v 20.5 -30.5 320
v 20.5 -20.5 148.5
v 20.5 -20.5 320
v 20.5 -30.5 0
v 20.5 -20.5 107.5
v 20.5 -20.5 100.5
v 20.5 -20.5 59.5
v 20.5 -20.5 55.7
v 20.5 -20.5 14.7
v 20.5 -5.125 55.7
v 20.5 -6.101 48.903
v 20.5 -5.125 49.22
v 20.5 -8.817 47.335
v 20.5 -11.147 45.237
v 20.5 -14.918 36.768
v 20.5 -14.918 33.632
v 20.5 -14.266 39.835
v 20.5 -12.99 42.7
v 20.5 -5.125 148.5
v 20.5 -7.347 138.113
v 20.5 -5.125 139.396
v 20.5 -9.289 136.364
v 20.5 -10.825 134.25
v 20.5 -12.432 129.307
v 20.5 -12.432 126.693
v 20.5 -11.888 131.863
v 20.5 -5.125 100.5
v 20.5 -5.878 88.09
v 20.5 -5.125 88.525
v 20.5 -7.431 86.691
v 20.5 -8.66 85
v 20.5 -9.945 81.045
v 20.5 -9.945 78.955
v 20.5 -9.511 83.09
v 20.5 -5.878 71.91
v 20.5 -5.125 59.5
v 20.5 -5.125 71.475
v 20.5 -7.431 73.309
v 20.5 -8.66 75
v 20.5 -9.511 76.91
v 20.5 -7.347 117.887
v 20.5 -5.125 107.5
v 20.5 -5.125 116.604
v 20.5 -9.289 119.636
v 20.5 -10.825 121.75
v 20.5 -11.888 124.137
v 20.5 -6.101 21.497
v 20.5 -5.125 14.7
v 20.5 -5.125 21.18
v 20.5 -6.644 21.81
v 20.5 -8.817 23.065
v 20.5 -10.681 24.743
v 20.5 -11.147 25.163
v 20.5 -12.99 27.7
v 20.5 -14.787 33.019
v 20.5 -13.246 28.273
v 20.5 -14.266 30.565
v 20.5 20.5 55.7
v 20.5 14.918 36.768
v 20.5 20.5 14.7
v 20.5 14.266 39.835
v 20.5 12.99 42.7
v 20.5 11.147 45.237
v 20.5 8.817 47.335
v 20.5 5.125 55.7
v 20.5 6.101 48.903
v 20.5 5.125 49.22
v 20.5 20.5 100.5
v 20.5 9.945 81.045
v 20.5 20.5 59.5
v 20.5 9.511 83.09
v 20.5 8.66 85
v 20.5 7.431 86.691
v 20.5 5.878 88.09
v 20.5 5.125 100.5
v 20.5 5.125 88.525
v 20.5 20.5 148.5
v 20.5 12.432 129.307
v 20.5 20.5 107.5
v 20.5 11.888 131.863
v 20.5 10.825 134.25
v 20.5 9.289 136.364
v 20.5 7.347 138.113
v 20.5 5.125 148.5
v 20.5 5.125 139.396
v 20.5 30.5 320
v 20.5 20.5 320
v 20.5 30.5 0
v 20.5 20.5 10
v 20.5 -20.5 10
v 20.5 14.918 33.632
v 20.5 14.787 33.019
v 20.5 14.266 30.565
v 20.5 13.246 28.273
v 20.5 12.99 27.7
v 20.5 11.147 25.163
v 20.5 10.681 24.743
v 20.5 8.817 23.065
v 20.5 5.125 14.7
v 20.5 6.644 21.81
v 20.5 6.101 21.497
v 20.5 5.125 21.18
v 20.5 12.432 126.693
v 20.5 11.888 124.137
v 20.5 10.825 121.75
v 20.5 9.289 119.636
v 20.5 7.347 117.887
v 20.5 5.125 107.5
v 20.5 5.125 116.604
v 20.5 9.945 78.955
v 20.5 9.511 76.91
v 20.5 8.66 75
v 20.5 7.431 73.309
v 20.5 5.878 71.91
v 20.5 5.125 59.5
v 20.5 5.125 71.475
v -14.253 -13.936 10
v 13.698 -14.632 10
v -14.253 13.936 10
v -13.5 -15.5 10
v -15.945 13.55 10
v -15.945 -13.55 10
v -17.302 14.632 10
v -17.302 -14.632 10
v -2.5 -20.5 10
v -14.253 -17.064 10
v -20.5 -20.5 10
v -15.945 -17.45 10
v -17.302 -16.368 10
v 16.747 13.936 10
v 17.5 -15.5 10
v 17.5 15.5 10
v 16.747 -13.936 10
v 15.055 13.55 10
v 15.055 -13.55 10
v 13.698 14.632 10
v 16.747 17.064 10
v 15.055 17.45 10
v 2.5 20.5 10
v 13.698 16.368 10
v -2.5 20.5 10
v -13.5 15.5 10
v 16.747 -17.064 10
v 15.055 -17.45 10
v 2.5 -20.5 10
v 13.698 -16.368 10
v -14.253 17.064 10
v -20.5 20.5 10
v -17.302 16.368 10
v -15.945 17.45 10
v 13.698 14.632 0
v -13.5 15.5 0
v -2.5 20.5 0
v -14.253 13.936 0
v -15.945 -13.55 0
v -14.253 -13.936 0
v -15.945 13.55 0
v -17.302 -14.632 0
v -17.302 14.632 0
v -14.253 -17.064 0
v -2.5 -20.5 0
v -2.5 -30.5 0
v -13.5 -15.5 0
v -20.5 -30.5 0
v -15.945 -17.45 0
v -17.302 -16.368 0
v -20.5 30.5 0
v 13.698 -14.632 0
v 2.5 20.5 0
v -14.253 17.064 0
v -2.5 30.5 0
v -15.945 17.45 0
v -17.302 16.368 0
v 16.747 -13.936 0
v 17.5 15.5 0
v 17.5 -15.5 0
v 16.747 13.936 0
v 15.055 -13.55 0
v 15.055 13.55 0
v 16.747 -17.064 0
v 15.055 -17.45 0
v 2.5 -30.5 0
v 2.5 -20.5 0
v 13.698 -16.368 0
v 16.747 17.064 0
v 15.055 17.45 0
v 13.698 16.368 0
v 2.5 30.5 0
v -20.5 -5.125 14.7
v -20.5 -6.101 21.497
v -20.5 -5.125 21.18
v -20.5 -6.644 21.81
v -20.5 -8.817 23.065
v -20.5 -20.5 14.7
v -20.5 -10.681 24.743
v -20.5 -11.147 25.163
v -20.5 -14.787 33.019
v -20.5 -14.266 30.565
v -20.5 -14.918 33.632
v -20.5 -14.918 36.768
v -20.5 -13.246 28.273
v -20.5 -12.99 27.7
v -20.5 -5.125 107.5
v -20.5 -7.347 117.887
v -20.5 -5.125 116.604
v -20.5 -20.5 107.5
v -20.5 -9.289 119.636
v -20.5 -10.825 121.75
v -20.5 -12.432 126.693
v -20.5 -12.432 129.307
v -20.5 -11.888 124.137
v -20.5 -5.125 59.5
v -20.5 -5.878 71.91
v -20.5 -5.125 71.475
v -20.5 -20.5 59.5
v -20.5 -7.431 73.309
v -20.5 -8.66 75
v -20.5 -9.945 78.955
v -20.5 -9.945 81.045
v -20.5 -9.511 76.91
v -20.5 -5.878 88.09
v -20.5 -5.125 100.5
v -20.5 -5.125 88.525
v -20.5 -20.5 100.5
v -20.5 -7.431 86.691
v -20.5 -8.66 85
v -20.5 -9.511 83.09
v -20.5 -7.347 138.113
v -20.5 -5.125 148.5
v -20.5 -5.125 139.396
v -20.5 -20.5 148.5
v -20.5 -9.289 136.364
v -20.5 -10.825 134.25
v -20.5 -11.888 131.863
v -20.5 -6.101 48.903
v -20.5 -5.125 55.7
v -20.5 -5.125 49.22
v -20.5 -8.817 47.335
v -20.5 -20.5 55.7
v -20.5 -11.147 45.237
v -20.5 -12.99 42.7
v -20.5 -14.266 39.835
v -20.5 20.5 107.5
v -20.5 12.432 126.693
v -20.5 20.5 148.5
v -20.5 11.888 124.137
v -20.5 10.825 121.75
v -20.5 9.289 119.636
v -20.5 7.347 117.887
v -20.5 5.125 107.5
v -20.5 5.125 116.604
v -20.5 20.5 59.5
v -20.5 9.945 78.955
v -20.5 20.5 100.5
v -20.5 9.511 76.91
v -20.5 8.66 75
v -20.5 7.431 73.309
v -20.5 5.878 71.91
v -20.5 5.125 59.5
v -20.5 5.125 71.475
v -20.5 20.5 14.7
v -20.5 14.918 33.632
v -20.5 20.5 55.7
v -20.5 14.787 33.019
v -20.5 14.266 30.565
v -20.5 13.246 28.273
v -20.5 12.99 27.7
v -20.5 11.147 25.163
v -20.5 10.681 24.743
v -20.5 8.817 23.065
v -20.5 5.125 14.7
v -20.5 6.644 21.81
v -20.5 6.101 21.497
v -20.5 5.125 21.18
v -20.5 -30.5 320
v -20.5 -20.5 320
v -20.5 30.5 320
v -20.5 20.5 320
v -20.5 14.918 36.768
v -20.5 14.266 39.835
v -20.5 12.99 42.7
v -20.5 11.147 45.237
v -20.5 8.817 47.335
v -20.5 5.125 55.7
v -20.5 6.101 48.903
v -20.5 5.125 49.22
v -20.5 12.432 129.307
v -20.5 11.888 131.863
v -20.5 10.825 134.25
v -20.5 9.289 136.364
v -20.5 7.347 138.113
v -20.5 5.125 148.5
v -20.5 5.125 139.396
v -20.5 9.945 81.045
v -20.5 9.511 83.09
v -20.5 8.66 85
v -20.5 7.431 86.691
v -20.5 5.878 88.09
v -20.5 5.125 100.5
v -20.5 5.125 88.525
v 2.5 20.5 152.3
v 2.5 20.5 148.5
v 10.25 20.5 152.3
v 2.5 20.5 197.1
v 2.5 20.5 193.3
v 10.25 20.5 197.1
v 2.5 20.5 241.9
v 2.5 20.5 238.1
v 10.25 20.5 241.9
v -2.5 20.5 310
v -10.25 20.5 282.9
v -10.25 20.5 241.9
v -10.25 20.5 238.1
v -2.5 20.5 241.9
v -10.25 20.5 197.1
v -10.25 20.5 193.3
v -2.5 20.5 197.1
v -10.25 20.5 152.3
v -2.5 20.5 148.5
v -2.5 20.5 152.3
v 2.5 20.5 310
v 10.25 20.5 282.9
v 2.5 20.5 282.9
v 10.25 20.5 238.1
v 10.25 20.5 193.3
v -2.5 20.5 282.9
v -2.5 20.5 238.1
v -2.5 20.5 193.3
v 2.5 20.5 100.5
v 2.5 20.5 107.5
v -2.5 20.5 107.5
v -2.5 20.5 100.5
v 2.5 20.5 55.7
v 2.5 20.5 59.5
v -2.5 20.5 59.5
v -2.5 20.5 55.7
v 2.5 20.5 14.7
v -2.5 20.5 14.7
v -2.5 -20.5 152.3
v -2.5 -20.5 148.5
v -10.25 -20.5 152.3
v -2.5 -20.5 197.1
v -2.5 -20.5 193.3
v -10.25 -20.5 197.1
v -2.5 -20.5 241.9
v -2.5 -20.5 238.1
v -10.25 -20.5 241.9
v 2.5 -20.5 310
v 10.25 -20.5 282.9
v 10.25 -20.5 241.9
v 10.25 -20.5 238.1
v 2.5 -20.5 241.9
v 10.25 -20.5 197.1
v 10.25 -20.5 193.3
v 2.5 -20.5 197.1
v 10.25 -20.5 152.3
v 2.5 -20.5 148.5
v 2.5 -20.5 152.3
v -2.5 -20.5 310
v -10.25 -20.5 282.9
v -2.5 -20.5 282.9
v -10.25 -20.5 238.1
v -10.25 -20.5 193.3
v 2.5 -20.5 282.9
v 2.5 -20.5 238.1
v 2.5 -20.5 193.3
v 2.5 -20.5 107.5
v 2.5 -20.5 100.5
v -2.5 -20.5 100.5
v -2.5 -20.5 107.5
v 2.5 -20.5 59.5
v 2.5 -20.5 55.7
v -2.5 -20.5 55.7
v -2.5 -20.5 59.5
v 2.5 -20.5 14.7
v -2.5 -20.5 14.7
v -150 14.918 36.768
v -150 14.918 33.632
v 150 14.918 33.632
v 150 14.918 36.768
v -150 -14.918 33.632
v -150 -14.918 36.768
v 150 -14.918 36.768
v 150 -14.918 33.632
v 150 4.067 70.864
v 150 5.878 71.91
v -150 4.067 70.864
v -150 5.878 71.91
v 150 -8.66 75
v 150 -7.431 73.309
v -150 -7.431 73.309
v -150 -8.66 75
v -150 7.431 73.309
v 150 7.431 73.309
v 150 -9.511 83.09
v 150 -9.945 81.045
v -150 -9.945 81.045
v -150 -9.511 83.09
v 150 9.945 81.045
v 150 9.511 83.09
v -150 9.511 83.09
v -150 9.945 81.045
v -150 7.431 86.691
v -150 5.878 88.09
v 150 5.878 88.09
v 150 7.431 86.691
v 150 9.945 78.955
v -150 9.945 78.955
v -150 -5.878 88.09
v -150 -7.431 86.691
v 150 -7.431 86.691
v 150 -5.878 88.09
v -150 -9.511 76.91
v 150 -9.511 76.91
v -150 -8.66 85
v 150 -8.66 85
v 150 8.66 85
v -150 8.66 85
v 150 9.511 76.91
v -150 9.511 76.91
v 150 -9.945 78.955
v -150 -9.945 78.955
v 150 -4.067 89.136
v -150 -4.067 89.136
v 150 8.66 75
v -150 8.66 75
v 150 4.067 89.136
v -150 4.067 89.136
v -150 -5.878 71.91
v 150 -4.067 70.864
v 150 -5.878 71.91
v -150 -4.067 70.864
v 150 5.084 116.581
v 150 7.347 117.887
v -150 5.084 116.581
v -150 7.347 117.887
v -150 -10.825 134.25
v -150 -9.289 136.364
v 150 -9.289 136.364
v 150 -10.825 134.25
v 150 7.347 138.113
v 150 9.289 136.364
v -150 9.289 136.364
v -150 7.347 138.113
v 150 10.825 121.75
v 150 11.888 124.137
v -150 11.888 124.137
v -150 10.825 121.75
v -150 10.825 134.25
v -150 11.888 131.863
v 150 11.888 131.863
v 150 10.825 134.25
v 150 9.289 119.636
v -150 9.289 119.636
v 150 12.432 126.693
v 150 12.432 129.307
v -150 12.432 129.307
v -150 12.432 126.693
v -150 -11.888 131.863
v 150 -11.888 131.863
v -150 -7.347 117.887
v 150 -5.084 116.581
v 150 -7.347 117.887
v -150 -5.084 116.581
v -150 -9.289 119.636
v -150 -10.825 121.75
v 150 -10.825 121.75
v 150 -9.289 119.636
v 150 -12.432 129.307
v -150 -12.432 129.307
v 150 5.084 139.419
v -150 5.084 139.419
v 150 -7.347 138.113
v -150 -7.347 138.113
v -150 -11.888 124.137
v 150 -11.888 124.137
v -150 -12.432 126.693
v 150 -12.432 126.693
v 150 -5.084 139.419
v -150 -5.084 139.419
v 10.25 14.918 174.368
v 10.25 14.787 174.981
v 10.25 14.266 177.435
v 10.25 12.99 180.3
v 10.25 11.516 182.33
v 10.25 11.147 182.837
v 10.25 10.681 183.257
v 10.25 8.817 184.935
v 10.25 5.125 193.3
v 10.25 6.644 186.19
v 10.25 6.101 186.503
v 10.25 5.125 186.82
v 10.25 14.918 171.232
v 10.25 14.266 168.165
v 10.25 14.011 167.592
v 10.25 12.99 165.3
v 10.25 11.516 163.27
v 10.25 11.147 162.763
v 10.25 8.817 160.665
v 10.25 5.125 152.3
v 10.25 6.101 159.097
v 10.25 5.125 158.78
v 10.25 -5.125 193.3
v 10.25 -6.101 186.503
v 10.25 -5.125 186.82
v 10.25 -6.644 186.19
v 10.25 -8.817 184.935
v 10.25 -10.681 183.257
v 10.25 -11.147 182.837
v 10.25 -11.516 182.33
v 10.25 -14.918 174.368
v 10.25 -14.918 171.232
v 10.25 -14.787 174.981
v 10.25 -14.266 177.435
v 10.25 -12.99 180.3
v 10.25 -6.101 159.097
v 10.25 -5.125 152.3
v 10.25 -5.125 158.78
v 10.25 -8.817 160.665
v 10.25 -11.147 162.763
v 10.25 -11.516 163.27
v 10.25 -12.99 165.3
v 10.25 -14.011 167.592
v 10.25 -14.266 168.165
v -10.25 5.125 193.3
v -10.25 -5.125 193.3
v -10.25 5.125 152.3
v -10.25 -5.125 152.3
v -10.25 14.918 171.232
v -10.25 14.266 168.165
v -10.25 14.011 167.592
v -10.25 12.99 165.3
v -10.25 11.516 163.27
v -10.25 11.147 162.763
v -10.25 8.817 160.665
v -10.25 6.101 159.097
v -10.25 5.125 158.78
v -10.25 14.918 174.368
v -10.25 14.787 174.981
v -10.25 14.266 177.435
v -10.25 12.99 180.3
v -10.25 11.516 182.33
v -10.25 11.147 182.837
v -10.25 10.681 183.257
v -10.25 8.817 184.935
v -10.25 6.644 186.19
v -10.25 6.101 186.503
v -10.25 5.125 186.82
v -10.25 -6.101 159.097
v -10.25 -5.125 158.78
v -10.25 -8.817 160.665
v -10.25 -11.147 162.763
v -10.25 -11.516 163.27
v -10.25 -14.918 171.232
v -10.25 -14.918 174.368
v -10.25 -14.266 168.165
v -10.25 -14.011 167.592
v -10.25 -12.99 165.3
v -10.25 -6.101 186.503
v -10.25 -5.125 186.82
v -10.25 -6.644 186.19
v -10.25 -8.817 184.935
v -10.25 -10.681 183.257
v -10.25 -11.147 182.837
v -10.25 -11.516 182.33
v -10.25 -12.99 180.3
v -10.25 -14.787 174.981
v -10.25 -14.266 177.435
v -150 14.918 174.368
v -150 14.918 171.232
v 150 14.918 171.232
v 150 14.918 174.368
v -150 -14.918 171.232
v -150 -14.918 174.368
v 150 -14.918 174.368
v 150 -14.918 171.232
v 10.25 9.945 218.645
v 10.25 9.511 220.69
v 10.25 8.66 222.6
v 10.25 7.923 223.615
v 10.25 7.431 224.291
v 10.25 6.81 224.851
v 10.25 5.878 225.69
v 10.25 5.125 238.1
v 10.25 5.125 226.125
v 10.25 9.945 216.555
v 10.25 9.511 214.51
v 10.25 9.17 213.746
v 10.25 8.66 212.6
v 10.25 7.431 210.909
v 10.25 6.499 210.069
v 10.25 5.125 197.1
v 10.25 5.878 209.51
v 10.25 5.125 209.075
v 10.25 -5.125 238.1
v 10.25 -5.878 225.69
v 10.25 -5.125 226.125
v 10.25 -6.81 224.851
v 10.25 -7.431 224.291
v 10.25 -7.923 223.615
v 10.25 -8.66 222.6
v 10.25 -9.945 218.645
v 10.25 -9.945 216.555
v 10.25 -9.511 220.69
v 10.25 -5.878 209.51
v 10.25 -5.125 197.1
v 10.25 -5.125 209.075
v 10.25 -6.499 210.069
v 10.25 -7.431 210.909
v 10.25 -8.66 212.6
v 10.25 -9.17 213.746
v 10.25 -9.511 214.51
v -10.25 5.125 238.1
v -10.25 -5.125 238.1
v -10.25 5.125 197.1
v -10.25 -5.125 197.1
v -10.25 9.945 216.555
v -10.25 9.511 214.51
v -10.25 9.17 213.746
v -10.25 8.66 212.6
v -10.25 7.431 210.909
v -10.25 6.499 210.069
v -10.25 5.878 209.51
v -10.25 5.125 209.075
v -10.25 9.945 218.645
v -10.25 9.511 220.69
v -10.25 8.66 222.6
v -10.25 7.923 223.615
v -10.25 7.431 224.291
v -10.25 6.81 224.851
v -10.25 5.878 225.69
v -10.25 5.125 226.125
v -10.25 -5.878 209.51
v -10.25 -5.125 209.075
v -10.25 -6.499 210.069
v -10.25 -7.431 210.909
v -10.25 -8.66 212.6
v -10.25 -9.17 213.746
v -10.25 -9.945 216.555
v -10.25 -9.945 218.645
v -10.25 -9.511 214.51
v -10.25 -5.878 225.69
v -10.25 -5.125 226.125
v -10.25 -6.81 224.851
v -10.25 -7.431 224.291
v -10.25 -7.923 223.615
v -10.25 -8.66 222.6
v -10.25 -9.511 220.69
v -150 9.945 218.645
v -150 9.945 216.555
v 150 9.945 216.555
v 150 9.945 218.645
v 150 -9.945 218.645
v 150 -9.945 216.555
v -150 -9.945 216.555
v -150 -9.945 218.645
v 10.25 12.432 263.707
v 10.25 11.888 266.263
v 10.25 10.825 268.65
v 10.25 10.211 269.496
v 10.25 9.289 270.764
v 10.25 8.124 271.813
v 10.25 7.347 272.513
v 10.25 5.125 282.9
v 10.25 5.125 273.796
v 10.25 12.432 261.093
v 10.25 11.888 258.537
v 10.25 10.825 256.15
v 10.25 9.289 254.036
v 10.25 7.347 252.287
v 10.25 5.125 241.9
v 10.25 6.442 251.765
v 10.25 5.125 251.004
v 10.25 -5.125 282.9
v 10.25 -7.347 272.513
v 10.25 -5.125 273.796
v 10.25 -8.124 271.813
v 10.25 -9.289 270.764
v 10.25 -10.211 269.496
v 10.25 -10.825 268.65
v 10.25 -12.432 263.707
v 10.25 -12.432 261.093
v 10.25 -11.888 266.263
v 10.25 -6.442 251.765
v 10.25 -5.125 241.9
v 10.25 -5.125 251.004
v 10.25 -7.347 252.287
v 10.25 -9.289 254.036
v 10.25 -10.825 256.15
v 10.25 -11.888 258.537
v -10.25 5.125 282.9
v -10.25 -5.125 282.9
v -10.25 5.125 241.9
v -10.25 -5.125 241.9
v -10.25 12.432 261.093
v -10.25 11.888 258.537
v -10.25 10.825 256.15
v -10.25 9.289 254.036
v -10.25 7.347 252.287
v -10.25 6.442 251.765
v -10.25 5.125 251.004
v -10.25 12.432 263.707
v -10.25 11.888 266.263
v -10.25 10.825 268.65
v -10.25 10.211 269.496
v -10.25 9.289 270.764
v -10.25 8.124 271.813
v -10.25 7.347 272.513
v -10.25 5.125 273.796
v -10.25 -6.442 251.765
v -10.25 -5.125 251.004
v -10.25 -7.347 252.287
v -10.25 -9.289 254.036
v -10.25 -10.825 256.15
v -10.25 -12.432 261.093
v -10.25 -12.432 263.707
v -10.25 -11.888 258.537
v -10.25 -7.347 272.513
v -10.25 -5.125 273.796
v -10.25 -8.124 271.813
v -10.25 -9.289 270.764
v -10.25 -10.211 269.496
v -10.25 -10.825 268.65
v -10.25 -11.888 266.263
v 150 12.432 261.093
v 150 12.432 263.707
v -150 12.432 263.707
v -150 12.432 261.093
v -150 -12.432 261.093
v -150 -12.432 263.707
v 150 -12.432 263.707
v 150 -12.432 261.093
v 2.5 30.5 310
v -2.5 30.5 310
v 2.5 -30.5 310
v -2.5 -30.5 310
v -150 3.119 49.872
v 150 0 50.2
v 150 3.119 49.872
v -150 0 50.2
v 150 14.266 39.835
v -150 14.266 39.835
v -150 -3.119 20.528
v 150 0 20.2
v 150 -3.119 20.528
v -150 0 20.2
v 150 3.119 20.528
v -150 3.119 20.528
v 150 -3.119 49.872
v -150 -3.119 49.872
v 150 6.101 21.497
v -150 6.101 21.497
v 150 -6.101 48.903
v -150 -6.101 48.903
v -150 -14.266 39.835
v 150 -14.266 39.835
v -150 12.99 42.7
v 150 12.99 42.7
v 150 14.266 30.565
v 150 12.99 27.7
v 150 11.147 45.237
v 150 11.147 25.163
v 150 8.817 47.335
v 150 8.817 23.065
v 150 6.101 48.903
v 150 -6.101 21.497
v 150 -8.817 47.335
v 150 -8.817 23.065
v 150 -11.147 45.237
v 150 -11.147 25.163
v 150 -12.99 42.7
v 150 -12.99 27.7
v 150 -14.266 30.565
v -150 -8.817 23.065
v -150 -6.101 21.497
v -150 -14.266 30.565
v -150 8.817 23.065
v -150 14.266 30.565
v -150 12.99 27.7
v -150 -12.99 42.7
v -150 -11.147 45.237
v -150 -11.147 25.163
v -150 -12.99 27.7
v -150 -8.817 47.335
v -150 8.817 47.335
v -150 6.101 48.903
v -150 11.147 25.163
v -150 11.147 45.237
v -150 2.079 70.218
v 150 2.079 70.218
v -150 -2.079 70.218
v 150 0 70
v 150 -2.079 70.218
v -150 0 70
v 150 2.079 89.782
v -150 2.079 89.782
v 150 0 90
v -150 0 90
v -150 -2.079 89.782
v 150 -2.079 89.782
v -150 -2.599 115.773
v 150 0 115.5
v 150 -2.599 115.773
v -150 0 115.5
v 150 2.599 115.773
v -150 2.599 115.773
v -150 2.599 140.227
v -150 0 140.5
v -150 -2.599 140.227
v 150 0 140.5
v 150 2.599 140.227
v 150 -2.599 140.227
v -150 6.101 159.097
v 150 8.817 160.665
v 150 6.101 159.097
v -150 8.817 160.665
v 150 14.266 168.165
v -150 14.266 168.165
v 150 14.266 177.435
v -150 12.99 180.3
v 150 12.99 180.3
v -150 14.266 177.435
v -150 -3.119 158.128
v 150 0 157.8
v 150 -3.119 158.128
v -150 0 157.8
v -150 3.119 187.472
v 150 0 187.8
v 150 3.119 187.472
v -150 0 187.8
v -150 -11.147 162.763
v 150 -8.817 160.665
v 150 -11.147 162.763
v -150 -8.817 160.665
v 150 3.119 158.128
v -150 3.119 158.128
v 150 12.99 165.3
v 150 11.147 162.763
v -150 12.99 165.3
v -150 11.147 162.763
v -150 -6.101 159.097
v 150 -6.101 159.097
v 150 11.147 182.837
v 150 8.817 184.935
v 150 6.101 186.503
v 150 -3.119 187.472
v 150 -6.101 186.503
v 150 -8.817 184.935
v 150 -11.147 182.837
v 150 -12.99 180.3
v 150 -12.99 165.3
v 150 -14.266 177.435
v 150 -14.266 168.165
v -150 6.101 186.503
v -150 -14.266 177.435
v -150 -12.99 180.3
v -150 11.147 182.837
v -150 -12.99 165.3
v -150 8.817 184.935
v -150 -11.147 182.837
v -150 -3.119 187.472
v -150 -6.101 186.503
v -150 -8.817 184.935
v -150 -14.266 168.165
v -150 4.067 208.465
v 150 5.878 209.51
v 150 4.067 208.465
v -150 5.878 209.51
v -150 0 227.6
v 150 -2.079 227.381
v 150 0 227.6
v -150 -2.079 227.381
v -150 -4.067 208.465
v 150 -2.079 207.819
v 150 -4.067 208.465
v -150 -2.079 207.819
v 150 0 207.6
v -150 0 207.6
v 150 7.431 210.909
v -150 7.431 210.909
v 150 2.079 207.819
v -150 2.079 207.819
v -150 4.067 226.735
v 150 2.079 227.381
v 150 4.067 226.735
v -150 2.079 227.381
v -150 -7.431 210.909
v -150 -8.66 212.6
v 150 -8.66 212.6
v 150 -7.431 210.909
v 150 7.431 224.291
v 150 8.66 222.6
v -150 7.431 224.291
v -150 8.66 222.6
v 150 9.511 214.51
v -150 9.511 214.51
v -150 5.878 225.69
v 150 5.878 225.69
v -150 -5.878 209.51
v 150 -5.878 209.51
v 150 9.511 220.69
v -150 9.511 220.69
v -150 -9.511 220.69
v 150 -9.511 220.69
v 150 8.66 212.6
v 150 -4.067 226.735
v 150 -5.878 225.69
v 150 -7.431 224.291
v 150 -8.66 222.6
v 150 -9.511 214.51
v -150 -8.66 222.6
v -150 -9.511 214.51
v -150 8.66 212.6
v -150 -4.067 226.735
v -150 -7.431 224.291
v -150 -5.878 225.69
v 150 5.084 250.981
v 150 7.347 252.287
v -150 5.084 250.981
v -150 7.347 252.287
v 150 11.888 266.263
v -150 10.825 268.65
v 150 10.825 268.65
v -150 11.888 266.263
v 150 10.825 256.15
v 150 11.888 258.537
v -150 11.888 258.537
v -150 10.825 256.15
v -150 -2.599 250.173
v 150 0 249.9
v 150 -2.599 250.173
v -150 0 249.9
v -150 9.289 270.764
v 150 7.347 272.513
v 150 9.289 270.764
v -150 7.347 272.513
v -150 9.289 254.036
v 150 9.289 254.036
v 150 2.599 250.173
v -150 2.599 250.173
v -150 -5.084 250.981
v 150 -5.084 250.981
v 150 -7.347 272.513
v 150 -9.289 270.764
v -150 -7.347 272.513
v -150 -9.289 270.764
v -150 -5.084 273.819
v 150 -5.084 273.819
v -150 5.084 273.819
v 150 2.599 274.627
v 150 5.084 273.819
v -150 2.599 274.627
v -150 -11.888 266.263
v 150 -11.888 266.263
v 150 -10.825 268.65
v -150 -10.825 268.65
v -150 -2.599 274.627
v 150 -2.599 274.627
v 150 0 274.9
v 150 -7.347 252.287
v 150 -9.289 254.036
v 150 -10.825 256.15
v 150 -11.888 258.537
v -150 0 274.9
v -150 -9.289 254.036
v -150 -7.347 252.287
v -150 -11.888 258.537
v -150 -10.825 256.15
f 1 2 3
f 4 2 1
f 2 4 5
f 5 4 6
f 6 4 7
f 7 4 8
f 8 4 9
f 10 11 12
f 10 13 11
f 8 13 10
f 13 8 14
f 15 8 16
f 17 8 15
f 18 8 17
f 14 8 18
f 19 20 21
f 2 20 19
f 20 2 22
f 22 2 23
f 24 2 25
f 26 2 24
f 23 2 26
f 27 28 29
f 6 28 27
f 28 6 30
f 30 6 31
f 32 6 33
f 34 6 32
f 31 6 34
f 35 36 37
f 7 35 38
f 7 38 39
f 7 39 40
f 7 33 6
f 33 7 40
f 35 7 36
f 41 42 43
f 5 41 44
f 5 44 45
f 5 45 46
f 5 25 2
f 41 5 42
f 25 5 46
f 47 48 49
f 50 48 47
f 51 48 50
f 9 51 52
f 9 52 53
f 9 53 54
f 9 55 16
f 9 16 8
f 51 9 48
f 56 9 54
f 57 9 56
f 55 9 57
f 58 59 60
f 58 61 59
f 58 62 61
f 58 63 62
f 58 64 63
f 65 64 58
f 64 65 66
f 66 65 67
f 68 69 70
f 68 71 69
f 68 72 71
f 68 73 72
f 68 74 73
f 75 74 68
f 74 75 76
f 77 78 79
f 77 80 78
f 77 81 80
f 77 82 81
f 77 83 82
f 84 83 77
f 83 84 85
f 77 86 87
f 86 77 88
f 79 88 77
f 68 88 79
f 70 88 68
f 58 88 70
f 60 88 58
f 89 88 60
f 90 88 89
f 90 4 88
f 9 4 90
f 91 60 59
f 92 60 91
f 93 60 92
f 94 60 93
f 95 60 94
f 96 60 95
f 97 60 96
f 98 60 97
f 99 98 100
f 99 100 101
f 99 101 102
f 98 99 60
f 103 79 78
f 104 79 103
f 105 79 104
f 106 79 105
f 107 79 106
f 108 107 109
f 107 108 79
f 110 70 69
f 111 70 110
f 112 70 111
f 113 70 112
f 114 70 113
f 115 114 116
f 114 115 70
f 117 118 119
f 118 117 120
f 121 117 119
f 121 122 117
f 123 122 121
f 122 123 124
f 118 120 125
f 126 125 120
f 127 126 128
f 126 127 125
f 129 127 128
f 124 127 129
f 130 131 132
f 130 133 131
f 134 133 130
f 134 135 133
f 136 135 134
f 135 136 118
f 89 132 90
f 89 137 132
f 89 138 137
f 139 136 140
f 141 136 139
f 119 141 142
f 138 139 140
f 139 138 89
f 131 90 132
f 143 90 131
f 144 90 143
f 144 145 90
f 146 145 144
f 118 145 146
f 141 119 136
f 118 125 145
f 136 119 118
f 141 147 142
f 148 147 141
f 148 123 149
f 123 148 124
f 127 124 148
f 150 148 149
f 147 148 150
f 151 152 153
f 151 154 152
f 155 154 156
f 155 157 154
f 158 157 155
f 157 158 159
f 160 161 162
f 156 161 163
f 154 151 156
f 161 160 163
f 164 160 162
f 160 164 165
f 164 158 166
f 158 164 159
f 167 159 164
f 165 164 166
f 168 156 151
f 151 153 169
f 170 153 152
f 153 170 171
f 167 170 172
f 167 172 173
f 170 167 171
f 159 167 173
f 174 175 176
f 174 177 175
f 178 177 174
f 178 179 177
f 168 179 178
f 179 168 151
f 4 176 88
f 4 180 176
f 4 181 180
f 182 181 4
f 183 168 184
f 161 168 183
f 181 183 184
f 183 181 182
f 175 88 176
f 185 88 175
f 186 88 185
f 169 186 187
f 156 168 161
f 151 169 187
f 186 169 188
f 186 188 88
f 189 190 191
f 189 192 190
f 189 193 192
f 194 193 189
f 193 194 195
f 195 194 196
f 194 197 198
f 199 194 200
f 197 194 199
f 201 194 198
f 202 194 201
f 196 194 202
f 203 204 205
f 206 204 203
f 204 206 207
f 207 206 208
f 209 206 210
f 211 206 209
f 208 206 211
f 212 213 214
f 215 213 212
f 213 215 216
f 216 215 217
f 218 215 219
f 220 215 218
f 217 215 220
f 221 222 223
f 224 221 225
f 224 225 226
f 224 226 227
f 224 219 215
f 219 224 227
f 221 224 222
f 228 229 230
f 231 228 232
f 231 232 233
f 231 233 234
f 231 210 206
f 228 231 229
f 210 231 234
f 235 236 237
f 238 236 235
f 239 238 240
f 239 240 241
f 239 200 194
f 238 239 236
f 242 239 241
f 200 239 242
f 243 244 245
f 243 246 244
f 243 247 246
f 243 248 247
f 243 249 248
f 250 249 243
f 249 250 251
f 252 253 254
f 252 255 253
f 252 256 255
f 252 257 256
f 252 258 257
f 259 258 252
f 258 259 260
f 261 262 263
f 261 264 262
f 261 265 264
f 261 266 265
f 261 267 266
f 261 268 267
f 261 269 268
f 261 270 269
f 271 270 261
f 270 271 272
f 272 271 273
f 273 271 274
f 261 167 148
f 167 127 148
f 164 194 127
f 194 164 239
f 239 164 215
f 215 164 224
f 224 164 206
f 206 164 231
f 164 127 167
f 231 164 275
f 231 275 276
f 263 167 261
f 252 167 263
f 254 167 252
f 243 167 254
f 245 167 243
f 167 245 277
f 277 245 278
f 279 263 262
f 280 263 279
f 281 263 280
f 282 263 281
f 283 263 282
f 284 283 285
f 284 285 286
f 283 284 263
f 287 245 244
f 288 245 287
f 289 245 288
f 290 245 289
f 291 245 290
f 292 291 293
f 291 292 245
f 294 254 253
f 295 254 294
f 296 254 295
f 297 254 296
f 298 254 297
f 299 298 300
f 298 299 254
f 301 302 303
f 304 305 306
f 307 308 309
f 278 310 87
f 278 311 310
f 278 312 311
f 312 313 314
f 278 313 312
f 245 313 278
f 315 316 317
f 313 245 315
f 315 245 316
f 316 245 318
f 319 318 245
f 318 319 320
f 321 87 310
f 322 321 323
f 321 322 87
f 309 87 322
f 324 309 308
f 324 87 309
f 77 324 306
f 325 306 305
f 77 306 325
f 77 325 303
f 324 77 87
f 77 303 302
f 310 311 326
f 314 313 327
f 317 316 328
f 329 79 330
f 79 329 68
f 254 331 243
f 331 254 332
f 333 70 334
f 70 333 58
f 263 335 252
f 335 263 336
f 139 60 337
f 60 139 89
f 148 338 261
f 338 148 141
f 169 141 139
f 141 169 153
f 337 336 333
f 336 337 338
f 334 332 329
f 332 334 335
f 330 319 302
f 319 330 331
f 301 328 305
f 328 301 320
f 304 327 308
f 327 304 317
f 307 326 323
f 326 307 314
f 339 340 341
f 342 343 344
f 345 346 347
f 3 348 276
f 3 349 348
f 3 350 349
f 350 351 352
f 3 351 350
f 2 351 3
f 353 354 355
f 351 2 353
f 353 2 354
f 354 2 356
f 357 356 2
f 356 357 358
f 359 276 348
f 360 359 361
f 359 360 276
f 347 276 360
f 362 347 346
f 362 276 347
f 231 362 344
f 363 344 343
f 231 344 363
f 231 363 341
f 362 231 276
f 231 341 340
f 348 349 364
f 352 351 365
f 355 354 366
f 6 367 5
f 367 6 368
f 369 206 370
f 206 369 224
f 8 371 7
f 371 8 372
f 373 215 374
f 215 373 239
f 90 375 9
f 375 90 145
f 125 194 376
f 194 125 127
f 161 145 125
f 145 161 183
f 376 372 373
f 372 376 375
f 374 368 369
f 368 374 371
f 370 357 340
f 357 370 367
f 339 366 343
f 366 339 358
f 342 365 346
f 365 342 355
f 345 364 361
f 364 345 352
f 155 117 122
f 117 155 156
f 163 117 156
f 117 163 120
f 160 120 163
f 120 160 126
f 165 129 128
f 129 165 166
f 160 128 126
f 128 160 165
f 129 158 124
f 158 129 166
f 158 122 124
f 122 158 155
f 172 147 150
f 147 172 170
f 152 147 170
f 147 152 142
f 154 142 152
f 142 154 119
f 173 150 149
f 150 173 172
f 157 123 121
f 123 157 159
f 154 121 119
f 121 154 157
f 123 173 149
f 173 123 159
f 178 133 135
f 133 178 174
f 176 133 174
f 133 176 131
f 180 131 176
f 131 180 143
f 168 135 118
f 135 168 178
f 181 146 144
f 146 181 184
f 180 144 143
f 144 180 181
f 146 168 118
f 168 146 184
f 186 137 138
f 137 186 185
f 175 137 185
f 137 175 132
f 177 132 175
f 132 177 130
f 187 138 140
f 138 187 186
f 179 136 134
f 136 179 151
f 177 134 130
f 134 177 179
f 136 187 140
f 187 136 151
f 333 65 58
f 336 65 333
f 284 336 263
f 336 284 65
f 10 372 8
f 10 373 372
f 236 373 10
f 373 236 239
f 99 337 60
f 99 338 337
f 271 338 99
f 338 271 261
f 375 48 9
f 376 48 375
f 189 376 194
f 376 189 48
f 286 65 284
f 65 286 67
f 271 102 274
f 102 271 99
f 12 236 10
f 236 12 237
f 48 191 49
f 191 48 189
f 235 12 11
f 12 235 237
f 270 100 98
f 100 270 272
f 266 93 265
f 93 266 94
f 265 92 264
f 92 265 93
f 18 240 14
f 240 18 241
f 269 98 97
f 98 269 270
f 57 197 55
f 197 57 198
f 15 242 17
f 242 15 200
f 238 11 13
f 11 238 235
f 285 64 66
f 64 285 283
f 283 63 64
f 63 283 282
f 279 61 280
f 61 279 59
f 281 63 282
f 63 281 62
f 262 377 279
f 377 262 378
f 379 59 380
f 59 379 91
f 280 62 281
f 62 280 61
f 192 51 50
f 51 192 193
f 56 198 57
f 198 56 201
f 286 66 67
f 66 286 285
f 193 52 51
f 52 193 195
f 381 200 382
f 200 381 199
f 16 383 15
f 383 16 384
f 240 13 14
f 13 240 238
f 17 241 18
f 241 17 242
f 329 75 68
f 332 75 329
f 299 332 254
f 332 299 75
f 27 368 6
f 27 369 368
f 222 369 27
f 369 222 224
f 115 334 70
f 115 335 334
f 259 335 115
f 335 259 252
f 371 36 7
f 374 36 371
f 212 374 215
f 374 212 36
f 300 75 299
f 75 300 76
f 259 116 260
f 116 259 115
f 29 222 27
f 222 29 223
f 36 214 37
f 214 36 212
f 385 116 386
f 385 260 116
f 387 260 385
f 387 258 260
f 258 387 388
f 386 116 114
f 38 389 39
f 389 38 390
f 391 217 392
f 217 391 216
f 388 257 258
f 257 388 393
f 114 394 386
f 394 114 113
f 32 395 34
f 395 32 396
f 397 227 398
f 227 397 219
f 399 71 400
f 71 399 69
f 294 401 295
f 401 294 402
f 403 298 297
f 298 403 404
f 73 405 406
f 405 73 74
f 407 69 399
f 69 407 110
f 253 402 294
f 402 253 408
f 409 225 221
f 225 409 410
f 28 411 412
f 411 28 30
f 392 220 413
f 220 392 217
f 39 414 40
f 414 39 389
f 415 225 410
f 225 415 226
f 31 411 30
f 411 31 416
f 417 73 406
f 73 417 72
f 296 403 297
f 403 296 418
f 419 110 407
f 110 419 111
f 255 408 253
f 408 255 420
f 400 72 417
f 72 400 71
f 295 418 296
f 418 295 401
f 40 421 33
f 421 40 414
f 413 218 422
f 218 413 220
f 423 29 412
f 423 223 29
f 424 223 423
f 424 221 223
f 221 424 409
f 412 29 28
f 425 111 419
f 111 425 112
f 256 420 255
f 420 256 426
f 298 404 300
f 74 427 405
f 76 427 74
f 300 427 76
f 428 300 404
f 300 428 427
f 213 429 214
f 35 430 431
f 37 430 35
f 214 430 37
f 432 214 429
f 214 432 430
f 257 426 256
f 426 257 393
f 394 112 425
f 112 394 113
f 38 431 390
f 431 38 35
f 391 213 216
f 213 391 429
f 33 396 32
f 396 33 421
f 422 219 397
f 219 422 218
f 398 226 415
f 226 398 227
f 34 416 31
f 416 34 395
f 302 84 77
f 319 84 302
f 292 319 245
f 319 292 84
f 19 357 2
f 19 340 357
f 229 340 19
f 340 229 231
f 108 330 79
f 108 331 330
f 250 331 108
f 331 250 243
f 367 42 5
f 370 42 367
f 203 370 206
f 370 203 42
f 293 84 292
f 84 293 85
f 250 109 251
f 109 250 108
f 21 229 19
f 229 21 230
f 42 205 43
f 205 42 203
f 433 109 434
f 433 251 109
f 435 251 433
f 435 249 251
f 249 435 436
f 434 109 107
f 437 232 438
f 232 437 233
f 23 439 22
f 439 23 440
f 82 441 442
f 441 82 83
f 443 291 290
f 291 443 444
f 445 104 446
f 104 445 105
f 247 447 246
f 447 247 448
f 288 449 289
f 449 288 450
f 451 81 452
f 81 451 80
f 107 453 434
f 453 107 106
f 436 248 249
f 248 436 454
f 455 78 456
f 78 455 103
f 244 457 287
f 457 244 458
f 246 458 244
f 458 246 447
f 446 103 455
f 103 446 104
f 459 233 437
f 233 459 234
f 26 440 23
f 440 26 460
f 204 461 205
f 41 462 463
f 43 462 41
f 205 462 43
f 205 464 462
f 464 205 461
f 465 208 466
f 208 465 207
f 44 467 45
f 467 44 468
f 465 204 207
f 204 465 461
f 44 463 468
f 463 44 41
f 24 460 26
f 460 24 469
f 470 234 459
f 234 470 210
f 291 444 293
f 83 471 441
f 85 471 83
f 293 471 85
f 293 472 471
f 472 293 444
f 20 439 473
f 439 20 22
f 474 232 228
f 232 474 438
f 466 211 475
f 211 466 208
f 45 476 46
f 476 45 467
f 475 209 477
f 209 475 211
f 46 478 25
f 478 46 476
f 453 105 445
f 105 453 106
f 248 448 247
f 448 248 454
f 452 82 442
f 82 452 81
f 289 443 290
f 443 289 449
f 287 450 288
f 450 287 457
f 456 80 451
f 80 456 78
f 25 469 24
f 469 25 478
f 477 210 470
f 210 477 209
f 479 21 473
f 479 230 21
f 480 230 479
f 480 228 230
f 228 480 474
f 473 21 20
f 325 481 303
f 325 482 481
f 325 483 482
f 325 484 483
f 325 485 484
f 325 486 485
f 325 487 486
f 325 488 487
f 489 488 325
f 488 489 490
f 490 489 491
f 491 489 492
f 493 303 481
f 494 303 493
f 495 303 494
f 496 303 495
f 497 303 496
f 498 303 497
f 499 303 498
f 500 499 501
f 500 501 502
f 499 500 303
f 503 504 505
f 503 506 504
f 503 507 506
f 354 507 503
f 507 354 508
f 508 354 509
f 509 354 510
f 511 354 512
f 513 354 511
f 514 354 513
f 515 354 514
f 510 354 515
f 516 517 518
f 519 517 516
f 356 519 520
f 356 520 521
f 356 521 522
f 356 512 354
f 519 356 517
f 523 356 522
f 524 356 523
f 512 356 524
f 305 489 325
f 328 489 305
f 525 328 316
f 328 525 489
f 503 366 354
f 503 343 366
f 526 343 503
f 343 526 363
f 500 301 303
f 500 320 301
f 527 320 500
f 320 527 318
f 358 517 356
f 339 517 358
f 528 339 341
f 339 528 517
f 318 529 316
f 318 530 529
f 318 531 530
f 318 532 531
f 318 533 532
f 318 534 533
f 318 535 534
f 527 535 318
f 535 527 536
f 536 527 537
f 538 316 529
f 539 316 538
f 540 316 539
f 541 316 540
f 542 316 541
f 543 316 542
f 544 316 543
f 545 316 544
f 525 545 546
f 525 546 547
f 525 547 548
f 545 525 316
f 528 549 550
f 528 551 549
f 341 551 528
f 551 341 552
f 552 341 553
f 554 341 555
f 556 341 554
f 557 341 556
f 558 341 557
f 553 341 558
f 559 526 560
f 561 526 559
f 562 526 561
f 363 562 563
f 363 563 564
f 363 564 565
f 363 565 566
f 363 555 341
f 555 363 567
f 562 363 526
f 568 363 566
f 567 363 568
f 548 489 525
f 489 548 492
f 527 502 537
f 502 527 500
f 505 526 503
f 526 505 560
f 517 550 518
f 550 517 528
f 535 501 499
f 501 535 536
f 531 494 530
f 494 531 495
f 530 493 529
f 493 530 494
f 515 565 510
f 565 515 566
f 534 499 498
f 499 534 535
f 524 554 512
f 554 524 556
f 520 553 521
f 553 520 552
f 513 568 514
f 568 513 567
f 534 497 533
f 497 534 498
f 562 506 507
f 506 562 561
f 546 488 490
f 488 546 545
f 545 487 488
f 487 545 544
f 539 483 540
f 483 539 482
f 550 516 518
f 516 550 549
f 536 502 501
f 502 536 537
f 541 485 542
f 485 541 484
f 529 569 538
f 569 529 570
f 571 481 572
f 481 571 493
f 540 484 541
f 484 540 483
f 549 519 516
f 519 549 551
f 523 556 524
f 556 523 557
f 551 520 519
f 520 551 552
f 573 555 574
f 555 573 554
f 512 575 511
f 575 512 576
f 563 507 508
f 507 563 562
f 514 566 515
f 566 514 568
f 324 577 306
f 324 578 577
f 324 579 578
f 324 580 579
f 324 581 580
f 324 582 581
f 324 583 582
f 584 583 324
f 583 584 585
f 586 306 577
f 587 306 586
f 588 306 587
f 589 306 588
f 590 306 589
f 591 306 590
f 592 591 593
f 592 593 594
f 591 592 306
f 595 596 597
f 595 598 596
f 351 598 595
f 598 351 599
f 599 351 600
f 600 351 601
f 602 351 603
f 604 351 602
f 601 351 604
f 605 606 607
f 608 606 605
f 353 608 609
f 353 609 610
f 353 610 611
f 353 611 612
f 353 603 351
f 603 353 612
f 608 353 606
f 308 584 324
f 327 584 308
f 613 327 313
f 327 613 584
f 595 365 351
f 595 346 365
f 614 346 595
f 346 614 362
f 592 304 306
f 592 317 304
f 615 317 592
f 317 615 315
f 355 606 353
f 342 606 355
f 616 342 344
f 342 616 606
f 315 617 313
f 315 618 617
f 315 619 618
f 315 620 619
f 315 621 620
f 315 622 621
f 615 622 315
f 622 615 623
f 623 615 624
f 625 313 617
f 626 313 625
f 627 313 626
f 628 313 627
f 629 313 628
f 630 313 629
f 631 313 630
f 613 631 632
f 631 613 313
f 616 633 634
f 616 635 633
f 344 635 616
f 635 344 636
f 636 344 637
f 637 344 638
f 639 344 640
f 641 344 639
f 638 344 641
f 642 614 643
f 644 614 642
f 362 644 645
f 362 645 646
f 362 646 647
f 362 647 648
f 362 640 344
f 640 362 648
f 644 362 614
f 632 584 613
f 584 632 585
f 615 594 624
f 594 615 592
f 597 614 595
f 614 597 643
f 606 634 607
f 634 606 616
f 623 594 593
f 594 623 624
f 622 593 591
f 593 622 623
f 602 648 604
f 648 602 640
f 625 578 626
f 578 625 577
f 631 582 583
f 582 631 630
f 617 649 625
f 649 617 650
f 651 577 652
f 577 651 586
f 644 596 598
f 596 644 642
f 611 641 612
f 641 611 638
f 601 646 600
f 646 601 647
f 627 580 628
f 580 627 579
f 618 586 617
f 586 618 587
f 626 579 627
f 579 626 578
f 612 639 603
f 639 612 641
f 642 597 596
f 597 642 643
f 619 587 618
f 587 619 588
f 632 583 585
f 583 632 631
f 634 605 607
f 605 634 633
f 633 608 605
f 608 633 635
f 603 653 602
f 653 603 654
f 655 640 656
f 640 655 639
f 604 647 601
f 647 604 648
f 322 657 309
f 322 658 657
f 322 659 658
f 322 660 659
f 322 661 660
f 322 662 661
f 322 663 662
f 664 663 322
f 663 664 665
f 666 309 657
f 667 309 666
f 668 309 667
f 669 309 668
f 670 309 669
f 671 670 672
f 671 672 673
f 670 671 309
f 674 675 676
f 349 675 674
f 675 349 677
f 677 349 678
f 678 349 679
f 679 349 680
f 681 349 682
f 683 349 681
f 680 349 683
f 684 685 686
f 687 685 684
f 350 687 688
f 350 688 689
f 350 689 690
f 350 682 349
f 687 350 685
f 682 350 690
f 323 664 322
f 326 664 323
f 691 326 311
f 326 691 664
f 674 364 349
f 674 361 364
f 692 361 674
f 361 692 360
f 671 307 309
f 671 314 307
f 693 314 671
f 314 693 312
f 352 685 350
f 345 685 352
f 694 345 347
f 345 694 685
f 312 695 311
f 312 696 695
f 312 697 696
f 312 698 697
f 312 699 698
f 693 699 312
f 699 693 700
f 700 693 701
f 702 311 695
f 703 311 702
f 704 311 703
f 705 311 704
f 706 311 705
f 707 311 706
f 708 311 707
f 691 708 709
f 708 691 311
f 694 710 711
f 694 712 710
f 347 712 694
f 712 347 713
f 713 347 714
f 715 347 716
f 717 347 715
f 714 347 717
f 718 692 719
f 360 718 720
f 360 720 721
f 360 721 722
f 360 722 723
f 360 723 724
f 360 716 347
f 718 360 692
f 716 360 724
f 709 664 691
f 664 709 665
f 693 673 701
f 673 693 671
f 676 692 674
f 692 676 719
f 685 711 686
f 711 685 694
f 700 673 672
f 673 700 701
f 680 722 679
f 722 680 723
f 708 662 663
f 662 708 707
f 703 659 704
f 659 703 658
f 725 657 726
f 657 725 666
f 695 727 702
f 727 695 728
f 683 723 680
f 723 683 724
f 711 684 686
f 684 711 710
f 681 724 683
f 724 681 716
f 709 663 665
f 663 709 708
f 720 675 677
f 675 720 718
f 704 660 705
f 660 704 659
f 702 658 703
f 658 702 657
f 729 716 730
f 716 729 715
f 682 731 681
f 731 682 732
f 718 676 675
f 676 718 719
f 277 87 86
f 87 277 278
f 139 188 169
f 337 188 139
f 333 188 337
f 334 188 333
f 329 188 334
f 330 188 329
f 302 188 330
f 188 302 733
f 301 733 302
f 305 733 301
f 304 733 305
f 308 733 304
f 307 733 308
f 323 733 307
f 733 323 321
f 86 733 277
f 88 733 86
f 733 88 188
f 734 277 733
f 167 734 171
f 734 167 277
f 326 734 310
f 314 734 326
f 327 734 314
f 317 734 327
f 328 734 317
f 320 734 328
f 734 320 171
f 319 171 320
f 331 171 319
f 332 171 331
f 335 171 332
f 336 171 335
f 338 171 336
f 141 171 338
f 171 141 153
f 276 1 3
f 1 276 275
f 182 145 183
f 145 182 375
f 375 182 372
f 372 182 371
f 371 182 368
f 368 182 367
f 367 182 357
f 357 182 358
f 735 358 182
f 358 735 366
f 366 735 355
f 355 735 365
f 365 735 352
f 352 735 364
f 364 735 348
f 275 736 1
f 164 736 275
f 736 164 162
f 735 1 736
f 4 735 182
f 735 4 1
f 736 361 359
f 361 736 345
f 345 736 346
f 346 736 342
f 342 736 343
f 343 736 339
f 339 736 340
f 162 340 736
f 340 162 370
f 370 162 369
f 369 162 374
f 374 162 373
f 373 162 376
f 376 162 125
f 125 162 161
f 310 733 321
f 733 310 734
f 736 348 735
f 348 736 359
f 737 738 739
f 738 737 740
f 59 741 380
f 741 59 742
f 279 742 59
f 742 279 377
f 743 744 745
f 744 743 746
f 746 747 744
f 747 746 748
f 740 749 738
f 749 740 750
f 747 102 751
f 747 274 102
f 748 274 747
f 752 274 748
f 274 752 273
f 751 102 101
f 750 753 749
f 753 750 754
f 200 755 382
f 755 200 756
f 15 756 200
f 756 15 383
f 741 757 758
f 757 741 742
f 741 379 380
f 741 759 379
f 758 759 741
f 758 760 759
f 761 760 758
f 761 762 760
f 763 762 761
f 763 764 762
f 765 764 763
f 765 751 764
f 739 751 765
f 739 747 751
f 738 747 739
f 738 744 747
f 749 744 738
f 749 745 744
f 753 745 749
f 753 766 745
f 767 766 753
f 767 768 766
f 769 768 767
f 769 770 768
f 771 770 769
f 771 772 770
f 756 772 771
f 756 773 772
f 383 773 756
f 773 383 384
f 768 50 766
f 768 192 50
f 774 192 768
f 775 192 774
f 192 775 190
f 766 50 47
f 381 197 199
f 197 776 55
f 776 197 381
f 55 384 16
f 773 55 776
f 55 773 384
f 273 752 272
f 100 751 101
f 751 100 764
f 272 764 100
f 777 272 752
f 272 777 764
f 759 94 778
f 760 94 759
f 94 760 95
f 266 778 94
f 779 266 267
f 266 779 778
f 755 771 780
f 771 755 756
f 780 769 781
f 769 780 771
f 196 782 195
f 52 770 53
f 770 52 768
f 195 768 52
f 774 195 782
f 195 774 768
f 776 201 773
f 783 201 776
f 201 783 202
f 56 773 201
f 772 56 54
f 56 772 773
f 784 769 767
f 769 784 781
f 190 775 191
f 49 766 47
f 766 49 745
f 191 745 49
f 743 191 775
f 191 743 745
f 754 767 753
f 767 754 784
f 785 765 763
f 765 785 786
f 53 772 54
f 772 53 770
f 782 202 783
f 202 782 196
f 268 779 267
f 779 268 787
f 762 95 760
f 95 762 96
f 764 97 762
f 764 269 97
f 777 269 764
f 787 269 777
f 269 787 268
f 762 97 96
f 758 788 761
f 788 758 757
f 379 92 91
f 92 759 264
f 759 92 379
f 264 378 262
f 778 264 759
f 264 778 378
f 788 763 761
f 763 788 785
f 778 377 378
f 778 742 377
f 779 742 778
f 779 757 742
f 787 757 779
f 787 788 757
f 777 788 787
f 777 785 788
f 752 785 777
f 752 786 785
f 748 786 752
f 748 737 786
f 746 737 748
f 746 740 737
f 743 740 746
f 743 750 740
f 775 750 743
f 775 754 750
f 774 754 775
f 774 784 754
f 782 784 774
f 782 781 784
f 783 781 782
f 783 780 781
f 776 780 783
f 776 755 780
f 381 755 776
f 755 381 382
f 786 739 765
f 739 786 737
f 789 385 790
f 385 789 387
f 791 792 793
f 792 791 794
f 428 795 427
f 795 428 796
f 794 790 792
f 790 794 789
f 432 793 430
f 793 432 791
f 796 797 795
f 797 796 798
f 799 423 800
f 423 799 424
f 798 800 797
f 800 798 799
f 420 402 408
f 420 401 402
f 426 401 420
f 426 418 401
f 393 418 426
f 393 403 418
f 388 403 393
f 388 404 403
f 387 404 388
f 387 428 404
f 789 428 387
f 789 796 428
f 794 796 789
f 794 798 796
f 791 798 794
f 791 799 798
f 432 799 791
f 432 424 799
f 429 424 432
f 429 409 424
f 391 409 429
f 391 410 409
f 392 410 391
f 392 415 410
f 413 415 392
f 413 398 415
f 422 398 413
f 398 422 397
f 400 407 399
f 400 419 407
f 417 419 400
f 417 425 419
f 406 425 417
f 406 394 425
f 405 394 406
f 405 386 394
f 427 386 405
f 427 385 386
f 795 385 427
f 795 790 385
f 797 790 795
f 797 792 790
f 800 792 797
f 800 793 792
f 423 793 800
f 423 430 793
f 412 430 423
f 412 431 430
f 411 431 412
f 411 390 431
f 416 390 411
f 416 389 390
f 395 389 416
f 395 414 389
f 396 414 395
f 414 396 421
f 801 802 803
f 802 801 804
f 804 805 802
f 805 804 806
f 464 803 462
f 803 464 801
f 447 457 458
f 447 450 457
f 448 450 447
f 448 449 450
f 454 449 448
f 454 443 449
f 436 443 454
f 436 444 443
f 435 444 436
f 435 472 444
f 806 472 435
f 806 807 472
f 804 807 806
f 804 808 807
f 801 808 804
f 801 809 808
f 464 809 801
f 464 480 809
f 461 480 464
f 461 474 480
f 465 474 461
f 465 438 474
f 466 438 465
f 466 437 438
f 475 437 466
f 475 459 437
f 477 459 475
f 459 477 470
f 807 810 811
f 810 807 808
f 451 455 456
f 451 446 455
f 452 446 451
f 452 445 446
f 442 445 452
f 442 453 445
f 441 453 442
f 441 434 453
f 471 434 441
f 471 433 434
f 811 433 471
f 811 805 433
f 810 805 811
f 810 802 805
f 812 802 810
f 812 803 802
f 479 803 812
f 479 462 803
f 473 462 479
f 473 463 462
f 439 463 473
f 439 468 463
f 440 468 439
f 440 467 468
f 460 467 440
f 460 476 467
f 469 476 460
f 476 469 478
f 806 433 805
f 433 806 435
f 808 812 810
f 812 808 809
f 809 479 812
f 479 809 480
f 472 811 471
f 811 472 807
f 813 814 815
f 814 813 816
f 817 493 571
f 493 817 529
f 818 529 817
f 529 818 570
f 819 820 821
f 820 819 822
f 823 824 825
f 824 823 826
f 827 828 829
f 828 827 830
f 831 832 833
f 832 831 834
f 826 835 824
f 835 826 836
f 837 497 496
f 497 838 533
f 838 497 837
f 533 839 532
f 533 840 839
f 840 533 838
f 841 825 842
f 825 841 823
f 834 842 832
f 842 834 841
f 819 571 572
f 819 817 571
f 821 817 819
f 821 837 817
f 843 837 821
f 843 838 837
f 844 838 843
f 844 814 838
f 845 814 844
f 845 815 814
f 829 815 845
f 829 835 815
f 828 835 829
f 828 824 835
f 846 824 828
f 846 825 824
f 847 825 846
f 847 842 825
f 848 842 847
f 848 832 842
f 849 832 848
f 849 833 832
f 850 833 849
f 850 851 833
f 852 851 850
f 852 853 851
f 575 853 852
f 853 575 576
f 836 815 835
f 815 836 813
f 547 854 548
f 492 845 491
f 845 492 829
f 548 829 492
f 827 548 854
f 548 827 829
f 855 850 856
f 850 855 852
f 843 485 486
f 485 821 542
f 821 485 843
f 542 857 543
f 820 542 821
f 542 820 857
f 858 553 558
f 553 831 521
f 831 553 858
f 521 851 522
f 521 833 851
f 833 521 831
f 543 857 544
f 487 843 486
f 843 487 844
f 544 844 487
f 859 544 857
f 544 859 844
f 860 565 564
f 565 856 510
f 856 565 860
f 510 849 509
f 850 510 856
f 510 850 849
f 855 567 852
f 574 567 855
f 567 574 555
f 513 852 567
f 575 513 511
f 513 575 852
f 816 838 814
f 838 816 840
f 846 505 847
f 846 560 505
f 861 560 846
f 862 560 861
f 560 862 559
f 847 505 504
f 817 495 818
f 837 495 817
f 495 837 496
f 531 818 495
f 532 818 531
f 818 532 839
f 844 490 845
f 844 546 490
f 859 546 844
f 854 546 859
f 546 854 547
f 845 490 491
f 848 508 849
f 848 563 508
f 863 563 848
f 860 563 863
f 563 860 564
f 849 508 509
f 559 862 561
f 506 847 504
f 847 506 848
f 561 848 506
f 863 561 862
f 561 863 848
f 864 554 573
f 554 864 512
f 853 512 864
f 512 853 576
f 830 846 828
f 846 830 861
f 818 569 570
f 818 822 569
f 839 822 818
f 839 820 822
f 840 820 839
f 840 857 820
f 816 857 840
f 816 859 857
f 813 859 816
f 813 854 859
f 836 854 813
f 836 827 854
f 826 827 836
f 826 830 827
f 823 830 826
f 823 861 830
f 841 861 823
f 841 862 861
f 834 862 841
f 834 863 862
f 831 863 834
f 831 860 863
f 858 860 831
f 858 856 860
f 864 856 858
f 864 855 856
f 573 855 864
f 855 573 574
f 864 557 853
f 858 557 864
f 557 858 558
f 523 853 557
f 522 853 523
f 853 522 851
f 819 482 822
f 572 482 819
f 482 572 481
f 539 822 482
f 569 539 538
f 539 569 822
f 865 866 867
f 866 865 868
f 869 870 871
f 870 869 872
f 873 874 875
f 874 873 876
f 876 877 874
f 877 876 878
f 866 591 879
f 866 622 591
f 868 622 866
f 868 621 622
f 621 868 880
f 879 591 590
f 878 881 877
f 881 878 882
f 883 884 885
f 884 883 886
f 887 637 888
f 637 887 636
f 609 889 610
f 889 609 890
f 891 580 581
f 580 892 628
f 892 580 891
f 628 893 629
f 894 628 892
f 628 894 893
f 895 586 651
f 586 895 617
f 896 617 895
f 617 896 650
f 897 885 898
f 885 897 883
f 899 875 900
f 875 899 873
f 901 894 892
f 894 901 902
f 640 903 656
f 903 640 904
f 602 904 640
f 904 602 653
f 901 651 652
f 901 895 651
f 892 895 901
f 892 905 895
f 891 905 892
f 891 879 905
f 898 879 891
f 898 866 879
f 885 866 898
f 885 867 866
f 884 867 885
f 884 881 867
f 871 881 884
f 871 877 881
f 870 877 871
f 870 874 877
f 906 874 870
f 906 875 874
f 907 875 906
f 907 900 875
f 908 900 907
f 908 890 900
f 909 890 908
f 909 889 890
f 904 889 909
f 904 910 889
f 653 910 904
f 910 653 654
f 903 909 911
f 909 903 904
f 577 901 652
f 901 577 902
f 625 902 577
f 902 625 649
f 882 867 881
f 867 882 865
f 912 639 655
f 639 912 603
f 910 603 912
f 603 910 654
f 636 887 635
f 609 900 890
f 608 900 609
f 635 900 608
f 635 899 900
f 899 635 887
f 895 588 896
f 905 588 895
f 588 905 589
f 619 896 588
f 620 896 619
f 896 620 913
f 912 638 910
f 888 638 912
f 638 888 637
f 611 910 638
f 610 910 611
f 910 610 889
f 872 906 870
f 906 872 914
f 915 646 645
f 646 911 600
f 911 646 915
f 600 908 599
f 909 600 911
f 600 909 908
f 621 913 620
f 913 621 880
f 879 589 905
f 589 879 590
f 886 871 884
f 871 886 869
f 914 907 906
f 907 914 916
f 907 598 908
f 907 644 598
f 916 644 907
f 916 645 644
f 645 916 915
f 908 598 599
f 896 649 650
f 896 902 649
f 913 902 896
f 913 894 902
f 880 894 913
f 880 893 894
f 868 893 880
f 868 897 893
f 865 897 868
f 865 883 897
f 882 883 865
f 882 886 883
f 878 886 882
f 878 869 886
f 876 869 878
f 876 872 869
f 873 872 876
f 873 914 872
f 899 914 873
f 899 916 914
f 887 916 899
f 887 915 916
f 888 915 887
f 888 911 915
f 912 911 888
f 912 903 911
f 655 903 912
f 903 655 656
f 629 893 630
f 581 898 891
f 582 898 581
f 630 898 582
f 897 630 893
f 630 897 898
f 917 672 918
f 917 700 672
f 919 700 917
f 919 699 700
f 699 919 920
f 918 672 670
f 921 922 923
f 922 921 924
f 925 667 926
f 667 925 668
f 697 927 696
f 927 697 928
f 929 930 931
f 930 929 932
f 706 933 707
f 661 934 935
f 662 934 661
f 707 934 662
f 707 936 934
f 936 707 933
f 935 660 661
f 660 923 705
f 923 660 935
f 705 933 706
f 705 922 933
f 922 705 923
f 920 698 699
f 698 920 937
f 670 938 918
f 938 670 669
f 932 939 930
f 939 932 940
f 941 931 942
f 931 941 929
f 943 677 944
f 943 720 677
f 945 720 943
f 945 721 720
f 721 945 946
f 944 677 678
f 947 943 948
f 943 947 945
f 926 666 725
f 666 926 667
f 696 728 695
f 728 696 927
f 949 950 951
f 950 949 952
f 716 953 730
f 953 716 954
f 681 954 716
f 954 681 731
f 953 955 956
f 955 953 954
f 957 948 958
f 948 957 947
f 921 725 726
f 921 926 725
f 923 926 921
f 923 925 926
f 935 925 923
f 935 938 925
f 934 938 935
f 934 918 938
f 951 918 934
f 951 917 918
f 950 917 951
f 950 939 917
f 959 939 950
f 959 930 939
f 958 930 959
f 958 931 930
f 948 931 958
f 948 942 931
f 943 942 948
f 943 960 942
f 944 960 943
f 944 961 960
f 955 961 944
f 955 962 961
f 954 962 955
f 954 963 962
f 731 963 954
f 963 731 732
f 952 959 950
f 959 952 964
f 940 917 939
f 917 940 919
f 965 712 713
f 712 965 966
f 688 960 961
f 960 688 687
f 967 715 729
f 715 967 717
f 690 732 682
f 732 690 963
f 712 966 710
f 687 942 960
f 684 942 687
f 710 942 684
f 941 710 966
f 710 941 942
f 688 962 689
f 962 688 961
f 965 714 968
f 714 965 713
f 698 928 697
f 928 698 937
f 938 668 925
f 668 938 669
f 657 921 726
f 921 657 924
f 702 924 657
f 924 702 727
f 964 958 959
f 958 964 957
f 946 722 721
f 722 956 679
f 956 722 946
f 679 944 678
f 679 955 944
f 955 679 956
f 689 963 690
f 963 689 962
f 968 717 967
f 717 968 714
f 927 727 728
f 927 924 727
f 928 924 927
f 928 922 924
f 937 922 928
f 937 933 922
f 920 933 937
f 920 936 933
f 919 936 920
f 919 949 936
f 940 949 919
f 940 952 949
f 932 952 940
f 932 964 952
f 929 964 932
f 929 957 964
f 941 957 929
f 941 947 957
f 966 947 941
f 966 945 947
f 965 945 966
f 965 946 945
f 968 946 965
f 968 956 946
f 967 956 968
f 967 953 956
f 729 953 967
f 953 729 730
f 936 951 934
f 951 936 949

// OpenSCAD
screw        =   4;
screw_margin =   5;
base         =  41;
wall         =  10;
large_rod    =  30;
small_rod    =  20;
slit         =   5;
height       = 320;

module platform() {
    difference() {
        cube([base, base, wall]);
        translate([0*base+1*screw_margin, 0*base+1*screw_margin, -wall]) cylinder(d = screw, h = 3*wall);
        translate([0*base+1*screw_margin, 1*base-1*screw_margin, -wall]) cylinder(d = screw, h = 3*wall);
        translate([1*base-1*screw_margin, 0*base+1*screw_margin, -wall]) cylinder(d = screw, h = 3*wall);
        translate([1*base-1*screw_margin, 1*base-1*screw_margin, -wall]) cylinder(d = screw, h = 3*wall);
    }
}

module side_bar() {
    cube([0.5*(base-slit), wall, height]);
}
module side_bar_connection() {
    cube([ base, wall, wall ]);
}

module rod(rod_width) {
    translate([-5*large_rod, 0, 0]) rotate([0, 90, 0])
    cylinder(d = rod_width, h = 10*large_rod);
}

module rod_holder(rod_width = large_rod, holder_width = base) {
    translate([0, 0, -0.5*base])
    difference() {
        translate([-0.5*holder_width, -0.5*base, 0]) cube([holder_width, base, base]);
        translate([-1.5*base, -0.125*base, -base]) cube([3*base, 0.25*base, 3*base]); 
        translate([0, 0, 0.5*base]) rod(rod_width);
    }
}

translate([-0.5*base, -0.5*base, 0]) platform();

translate([-0.0*base+0.5*slit, +0.5*base-0*wall, 0]) side_bar();
translate([-0.5*base-0.0*slit, +0.5*base-0*wall, 0]) side_bar();
translate([-0.0*base+0.5*slit, -0.5*base-1*wall, 0]) side_bar();
translate([-0.5*base-0.0*slit, -0.5*base-1*wall, 0]) side_bar();

translate([-0.5*base, 0.5*base-0*wall, height-wall]) side_bar_connection();
translate([-0.5*base, -0.5*base-1*wall, height-wall]) side_bar_connection();

//full width rod holders:
color([0.5, 0, 0]) translate([0, 0, 0.11*height]) rod_holder(rod_width = large_rod, holder_width = base);
color([1.0, 0, 0]) translate([0, 0, 0.11*height]) rod(rod_width = large_rod);

color([0, 0.5, 0]) translate([0, 0, 0.25*height]) rod_holder(rod_width = small_rod, holder_width = base);
color([0, 1.0, 0]) translate([0, 0, 0.25*height]) rod(rod_width = small_rod);

color([0, 0, 0.5]) translate([0, 0, 0.40*height]) rod_holder(rod_width = 25, holder_width = base);
color([0, 0, 1.0]) translate([0, 0, 0.40*height]) rod(rod_width = 25);

color([0, 0, 0.5]) translate([0, 0, 0.40*height]) rod_holder(rod_width = 25, holder_width = base);
color([0, 0, 1.0]) translate([0, 0, 0.40*height]) rod(rod_width = 25);

////half width rod holders
color([0.5, 0, 0.5]) translate([0, 0, 0.54*height]) rod_holder(rod_width = large_rod, holder_width = 0.5*base);
color([1.0, 0, 1.0]) translate([0, 0, 0.54*height]) rod(rod_width = large_rod);

color([0, 0.5, 0.5]) translate([0, 0, 0.68*height]) rod_holder(rod_width = small_rod, holder_width = 0.5*base);
color([0, 1.0, 1.0]) translate([0, 0, 0.68*height]) rod(rod_width = small_rod);

color([0.75, 0.75, 0.5]) translate([0, 0, 0.82*height]) rod_holder(rod_width = 25, holder_width = 0.5*base);
color([1.00, 1.00, 1.00]) translate([0, 0, 0.82*height]) rod(rod_width = 25);
